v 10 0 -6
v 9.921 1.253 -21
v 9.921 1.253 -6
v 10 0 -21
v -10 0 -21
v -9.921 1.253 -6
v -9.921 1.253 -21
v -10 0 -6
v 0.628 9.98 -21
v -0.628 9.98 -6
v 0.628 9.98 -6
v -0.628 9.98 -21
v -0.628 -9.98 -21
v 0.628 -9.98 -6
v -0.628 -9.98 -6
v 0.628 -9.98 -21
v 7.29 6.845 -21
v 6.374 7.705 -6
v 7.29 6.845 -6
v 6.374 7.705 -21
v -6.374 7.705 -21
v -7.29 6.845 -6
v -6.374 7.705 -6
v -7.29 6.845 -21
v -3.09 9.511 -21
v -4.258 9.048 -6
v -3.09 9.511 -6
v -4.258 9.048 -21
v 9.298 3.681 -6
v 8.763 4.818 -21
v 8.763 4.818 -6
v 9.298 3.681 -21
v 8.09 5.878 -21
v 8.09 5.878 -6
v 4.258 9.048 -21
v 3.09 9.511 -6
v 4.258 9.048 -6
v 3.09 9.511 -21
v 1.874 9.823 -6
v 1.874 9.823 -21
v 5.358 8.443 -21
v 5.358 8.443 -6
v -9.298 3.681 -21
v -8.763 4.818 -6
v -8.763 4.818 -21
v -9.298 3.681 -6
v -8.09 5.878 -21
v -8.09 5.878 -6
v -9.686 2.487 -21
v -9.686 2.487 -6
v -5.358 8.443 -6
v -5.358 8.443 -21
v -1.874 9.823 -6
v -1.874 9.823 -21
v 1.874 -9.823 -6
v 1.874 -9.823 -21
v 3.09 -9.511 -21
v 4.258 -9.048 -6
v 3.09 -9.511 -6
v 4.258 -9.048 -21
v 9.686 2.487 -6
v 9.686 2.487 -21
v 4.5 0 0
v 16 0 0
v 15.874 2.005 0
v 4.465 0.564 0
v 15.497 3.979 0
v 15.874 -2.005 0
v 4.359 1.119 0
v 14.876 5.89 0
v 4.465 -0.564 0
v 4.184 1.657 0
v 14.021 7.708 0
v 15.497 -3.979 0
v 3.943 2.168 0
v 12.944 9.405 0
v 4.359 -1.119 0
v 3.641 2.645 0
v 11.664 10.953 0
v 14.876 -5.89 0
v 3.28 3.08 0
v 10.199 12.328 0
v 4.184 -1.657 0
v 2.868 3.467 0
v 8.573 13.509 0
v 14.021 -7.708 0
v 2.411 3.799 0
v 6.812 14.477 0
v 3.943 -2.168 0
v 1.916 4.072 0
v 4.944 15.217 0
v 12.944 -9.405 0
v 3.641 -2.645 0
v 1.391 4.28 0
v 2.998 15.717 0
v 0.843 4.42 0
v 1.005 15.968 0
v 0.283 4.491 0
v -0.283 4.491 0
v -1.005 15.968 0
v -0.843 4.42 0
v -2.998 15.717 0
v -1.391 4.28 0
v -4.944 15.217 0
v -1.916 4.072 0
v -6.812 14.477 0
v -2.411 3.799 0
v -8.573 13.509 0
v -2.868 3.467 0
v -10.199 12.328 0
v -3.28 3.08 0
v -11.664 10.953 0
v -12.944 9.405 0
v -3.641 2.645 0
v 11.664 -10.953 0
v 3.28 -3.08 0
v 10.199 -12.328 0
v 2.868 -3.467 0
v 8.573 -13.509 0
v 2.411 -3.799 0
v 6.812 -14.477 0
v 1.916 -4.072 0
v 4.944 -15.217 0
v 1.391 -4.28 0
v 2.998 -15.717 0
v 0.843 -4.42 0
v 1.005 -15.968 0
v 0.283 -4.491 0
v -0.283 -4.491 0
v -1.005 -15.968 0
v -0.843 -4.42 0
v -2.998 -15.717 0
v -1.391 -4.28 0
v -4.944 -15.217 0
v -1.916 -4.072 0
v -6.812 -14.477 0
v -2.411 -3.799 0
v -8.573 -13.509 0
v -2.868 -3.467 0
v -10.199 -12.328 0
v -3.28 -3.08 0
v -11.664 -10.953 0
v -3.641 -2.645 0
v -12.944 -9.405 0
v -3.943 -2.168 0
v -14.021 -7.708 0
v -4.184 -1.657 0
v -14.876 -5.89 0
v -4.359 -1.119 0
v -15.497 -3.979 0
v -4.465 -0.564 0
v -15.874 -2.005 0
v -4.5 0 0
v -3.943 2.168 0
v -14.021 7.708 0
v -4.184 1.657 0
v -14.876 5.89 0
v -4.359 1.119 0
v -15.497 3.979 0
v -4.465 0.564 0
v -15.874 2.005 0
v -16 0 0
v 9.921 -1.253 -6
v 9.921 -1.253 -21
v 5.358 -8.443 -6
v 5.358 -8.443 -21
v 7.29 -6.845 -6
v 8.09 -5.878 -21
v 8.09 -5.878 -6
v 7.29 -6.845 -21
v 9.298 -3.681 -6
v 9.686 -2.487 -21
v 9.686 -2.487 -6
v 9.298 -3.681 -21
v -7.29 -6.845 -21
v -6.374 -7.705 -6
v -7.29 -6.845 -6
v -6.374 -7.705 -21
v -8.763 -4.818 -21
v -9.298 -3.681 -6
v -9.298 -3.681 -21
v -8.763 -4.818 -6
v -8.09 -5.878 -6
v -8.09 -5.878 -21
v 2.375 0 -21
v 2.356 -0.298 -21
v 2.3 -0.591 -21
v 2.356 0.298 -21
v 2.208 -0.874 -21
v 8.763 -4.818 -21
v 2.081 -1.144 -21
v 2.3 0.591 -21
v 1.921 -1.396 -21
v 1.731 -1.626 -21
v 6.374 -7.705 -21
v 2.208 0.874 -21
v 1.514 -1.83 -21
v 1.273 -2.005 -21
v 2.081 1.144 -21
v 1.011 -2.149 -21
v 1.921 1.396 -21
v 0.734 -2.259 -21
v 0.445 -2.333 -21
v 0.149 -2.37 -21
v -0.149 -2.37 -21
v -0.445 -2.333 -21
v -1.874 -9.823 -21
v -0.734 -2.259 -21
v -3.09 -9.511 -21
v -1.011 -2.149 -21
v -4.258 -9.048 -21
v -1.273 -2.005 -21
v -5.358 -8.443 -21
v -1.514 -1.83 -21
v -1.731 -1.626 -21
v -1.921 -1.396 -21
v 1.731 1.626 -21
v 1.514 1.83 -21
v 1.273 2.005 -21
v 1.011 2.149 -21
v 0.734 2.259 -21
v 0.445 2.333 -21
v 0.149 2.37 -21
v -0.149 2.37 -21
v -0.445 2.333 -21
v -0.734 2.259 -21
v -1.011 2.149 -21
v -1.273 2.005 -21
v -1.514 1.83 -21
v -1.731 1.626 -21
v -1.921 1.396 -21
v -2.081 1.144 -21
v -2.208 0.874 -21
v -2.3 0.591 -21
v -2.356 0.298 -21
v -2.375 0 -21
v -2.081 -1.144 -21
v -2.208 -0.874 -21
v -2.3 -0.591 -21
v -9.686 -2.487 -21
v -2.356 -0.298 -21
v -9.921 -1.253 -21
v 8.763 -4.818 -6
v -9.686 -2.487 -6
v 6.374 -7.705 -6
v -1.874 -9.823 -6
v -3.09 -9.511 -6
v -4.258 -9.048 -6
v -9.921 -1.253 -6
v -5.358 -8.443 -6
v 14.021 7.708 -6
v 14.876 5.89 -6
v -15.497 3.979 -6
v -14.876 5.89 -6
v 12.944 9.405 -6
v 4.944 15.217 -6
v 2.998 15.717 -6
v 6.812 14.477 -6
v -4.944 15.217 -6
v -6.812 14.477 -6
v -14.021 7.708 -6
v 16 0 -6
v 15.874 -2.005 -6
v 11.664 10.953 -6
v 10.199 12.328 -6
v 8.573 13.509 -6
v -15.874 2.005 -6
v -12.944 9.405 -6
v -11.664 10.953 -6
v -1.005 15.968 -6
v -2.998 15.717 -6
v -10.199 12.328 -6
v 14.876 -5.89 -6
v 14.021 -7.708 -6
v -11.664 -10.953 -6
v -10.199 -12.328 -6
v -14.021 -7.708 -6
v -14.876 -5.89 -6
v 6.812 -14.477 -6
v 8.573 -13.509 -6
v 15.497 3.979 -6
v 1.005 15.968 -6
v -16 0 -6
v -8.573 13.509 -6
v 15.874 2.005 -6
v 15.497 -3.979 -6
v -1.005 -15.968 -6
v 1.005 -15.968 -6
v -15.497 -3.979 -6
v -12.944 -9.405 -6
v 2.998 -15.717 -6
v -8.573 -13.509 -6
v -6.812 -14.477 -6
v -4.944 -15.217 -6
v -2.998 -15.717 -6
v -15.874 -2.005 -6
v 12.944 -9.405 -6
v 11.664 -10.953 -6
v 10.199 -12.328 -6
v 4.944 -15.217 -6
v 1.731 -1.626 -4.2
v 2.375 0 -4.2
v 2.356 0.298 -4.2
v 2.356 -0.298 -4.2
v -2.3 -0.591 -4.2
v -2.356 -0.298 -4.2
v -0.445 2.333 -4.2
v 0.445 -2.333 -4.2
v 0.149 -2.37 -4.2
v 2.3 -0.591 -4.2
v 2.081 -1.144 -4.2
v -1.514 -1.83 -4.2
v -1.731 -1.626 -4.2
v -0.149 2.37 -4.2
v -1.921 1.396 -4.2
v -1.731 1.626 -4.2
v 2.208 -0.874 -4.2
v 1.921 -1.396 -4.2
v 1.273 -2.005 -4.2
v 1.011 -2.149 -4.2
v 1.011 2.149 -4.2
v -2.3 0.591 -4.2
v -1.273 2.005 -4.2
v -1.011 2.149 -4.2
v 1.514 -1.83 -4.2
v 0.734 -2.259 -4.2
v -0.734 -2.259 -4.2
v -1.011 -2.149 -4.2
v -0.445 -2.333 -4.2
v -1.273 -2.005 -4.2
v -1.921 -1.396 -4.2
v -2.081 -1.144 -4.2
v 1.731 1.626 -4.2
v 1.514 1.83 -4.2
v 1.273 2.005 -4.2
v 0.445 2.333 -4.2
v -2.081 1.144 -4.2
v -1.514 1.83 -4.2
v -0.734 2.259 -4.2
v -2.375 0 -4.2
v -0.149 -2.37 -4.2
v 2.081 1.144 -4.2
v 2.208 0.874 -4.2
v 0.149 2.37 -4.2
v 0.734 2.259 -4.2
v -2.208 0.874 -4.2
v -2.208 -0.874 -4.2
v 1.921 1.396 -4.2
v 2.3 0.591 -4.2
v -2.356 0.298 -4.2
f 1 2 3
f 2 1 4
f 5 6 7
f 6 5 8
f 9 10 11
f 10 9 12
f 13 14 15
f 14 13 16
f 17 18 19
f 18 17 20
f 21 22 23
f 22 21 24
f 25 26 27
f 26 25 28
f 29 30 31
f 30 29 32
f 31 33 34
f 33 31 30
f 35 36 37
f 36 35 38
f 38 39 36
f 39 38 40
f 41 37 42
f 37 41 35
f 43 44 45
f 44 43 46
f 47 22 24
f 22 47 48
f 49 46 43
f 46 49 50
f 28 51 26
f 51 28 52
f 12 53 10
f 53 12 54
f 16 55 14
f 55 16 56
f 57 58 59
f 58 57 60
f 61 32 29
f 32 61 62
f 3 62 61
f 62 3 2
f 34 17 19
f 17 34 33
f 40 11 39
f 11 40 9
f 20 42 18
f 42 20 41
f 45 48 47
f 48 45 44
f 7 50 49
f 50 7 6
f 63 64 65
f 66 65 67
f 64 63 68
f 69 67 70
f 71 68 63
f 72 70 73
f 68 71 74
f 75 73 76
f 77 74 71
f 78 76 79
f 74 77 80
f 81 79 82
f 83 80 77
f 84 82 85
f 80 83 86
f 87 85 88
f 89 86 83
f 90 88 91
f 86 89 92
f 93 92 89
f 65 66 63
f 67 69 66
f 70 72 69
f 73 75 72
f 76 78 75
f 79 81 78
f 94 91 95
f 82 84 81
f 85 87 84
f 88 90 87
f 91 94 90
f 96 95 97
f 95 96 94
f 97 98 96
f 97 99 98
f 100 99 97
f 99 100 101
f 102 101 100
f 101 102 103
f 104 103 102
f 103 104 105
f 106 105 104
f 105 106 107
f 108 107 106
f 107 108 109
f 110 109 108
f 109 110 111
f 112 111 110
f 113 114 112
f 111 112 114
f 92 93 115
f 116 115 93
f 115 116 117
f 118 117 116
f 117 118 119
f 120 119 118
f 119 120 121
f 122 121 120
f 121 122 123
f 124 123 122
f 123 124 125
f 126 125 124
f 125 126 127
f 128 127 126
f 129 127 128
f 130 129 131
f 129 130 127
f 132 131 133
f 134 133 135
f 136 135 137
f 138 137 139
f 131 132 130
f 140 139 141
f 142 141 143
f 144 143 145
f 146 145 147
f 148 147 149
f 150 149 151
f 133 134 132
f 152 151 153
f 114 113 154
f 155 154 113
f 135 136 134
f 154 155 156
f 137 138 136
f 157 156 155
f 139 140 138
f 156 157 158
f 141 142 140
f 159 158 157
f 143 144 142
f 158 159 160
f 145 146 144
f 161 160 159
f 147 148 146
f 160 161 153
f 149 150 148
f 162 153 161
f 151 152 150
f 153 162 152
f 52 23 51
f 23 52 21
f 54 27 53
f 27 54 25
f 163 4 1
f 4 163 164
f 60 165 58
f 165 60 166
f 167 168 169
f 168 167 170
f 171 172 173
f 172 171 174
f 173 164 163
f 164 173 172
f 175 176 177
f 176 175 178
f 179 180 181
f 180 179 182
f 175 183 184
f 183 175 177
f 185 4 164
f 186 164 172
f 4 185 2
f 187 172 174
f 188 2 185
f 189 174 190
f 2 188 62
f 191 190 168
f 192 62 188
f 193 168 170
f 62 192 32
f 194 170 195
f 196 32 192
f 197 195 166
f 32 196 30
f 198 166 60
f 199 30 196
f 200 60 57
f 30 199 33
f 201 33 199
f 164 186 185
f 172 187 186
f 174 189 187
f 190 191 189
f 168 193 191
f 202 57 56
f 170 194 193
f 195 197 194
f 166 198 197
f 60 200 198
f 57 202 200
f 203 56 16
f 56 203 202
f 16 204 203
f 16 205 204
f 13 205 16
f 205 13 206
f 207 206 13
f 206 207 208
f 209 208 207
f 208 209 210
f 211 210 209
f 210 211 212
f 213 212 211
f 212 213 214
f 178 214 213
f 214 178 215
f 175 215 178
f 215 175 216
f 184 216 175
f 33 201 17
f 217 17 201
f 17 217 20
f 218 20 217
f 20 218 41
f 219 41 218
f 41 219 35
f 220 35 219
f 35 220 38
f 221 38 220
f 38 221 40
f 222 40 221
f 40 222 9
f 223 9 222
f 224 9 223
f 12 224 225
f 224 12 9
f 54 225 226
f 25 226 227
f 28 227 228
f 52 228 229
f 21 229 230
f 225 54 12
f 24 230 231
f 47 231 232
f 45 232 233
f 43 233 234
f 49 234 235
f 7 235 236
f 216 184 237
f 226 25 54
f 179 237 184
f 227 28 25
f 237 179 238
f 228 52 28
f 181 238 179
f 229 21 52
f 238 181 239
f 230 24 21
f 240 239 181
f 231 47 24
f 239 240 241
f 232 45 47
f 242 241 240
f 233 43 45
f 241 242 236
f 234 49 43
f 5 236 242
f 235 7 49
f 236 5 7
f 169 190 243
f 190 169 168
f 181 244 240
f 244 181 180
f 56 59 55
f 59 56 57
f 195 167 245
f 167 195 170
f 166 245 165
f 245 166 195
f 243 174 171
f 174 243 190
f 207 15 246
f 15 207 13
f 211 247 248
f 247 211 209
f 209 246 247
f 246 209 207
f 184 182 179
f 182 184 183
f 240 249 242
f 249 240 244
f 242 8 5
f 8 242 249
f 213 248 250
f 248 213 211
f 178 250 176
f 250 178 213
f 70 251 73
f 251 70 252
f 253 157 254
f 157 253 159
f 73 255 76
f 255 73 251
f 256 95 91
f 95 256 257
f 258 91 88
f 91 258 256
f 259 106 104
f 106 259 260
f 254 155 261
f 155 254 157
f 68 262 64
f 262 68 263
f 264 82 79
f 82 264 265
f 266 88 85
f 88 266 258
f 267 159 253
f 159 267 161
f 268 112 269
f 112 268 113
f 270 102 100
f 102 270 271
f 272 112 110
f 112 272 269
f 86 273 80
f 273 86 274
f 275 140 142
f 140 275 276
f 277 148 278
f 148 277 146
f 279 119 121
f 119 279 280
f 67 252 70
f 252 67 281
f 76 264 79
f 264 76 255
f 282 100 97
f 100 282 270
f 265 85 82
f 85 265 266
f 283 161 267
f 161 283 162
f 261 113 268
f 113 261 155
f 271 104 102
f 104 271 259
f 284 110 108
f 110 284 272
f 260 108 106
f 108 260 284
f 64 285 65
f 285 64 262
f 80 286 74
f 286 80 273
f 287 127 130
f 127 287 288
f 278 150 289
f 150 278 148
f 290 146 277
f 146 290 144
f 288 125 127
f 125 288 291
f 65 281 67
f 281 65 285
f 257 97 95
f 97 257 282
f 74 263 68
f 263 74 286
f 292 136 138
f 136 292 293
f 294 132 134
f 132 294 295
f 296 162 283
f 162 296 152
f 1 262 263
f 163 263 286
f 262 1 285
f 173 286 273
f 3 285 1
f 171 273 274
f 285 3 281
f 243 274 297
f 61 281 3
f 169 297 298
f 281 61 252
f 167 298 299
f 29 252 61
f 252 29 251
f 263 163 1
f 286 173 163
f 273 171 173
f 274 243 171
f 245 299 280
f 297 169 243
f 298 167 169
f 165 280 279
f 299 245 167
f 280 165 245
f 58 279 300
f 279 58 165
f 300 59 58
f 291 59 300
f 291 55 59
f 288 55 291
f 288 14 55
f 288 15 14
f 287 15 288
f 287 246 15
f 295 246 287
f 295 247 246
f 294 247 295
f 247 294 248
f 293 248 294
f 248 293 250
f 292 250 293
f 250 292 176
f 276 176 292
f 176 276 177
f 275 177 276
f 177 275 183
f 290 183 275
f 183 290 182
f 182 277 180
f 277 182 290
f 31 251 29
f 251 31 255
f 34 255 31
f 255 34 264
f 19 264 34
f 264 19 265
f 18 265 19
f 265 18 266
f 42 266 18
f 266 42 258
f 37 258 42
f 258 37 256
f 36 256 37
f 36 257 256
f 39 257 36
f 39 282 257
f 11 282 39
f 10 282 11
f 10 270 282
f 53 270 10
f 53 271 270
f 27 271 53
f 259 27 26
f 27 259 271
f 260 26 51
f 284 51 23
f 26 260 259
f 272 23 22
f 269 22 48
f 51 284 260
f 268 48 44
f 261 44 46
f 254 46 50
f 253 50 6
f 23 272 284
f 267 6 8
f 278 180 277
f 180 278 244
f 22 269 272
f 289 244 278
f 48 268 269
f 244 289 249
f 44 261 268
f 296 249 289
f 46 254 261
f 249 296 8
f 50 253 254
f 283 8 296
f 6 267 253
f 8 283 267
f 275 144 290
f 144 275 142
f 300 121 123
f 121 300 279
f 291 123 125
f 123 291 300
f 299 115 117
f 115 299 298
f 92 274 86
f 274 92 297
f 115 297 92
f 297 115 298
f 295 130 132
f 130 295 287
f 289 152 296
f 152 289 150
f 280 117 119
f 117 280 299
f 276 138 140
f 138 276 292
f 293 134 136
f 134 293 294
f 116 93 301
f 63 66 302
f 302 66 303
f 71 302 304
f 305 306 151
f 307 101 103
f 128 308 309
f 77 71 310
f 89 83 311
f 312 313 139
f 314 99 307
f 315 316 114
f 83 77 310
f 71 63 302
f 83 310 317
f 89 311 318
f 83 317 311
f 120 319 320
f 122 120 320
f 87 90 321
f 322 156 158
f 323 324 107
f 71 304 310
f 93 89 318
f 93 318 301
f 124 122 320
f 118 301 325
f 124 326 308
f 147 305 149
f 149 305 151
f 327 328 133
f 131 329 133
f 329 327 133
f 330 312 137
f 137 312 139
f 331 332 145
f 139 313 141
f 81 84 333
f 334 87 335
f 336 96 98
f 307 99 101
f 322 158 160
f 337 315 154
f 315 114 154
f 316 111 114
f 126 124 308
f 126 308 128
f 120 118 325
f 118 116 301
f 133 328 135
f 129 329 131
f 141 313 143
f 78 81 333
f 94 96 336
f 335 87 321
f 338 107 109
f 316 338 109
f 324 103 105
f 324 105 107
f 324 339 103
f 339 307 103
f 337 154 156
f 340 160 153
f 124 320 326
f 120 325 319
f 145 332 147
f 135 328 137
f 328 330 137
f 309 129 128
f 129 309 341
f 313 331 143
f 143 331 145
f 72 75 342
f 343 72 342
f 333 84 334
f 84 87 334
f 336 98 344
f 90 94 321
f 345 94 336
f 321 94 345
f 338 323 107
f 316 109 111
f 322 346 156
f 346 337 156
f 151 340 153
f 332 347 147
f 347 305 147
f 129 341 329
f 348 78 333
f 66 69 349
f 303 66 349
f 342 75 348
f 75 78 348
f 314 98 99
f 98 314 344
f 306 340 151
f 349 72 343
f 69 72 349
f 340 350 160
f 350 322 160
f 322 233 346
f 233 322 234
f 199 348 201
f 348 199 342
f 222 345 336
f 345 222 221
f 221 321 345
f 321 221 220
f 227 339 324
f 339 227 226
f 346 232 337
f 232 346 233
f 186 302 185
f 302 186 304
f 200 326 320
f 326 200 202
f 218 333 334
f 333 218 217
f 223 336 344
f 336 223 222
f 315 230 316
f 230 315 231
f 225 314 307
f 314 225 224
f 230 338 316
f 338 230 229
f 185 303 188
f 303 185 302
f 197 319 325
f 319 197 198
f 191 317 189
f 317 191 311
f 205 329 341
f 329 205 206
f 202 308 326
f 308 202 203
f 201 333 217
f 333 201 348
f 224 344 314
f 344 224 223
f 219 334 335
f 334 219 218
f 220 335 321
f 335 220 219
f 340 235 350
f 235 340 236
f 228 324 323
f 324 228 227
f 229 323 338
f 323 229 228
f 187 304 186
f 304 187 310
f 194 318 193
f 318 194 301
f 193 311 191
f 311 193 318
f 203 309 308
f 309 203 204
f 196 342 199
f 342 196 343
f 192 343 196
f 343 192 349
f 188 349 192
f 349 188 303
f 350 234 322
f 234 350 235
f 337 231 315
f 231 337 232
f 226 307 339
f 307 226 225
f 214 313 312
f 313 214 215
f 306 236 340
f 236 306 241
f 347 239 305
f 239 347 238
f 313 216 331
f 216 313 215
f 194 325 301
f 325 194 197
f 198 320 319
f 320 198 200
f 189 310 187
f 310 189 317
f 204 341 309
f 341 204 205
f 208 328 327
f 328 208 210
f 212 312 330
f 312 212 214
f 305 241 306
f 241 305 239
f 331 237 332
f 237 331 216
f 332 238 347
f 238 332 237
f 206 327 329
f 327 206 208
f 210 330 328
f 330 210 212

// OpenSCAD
$fn = 50;


difference() {
	union() {
		translate(v = [0, 0, -21.0000000000]) {
			cylinder(h = 21, r = 10.0000000000);
		}
		translate(v = [0, 0, -6.0000000000]) {
			cylinder(h = 6, r = 16.0000000000);
		}
	}
	union() {
		translate(v = [0, 0, 0]) {
			rotate(a = [0, 0, 0]) {
				difference() {
					union() {
						#translate(v = [0, 0, -21.0000000000]) {
							cylinder(h = 21, r = 2.2500000000);
						}
						#translate(v = [0, 0, -4.2000000000]) {
							cylinder(h = 4.2000000000, r = 10.0000000000, r1 = 2.3750000000, r2 = 4.5000000000);
						}
						#translate(v = [0, 0, -21.0000000000]) {
							cylinder(h = 21, r = 2.3750000000);
						}
						#translate(v = [0, 0, -21.0000000000]) {
							cylinder(h = 21, r = 2.2500000000);
						}
					}
					union();
				}
			}
		}
	}
}
